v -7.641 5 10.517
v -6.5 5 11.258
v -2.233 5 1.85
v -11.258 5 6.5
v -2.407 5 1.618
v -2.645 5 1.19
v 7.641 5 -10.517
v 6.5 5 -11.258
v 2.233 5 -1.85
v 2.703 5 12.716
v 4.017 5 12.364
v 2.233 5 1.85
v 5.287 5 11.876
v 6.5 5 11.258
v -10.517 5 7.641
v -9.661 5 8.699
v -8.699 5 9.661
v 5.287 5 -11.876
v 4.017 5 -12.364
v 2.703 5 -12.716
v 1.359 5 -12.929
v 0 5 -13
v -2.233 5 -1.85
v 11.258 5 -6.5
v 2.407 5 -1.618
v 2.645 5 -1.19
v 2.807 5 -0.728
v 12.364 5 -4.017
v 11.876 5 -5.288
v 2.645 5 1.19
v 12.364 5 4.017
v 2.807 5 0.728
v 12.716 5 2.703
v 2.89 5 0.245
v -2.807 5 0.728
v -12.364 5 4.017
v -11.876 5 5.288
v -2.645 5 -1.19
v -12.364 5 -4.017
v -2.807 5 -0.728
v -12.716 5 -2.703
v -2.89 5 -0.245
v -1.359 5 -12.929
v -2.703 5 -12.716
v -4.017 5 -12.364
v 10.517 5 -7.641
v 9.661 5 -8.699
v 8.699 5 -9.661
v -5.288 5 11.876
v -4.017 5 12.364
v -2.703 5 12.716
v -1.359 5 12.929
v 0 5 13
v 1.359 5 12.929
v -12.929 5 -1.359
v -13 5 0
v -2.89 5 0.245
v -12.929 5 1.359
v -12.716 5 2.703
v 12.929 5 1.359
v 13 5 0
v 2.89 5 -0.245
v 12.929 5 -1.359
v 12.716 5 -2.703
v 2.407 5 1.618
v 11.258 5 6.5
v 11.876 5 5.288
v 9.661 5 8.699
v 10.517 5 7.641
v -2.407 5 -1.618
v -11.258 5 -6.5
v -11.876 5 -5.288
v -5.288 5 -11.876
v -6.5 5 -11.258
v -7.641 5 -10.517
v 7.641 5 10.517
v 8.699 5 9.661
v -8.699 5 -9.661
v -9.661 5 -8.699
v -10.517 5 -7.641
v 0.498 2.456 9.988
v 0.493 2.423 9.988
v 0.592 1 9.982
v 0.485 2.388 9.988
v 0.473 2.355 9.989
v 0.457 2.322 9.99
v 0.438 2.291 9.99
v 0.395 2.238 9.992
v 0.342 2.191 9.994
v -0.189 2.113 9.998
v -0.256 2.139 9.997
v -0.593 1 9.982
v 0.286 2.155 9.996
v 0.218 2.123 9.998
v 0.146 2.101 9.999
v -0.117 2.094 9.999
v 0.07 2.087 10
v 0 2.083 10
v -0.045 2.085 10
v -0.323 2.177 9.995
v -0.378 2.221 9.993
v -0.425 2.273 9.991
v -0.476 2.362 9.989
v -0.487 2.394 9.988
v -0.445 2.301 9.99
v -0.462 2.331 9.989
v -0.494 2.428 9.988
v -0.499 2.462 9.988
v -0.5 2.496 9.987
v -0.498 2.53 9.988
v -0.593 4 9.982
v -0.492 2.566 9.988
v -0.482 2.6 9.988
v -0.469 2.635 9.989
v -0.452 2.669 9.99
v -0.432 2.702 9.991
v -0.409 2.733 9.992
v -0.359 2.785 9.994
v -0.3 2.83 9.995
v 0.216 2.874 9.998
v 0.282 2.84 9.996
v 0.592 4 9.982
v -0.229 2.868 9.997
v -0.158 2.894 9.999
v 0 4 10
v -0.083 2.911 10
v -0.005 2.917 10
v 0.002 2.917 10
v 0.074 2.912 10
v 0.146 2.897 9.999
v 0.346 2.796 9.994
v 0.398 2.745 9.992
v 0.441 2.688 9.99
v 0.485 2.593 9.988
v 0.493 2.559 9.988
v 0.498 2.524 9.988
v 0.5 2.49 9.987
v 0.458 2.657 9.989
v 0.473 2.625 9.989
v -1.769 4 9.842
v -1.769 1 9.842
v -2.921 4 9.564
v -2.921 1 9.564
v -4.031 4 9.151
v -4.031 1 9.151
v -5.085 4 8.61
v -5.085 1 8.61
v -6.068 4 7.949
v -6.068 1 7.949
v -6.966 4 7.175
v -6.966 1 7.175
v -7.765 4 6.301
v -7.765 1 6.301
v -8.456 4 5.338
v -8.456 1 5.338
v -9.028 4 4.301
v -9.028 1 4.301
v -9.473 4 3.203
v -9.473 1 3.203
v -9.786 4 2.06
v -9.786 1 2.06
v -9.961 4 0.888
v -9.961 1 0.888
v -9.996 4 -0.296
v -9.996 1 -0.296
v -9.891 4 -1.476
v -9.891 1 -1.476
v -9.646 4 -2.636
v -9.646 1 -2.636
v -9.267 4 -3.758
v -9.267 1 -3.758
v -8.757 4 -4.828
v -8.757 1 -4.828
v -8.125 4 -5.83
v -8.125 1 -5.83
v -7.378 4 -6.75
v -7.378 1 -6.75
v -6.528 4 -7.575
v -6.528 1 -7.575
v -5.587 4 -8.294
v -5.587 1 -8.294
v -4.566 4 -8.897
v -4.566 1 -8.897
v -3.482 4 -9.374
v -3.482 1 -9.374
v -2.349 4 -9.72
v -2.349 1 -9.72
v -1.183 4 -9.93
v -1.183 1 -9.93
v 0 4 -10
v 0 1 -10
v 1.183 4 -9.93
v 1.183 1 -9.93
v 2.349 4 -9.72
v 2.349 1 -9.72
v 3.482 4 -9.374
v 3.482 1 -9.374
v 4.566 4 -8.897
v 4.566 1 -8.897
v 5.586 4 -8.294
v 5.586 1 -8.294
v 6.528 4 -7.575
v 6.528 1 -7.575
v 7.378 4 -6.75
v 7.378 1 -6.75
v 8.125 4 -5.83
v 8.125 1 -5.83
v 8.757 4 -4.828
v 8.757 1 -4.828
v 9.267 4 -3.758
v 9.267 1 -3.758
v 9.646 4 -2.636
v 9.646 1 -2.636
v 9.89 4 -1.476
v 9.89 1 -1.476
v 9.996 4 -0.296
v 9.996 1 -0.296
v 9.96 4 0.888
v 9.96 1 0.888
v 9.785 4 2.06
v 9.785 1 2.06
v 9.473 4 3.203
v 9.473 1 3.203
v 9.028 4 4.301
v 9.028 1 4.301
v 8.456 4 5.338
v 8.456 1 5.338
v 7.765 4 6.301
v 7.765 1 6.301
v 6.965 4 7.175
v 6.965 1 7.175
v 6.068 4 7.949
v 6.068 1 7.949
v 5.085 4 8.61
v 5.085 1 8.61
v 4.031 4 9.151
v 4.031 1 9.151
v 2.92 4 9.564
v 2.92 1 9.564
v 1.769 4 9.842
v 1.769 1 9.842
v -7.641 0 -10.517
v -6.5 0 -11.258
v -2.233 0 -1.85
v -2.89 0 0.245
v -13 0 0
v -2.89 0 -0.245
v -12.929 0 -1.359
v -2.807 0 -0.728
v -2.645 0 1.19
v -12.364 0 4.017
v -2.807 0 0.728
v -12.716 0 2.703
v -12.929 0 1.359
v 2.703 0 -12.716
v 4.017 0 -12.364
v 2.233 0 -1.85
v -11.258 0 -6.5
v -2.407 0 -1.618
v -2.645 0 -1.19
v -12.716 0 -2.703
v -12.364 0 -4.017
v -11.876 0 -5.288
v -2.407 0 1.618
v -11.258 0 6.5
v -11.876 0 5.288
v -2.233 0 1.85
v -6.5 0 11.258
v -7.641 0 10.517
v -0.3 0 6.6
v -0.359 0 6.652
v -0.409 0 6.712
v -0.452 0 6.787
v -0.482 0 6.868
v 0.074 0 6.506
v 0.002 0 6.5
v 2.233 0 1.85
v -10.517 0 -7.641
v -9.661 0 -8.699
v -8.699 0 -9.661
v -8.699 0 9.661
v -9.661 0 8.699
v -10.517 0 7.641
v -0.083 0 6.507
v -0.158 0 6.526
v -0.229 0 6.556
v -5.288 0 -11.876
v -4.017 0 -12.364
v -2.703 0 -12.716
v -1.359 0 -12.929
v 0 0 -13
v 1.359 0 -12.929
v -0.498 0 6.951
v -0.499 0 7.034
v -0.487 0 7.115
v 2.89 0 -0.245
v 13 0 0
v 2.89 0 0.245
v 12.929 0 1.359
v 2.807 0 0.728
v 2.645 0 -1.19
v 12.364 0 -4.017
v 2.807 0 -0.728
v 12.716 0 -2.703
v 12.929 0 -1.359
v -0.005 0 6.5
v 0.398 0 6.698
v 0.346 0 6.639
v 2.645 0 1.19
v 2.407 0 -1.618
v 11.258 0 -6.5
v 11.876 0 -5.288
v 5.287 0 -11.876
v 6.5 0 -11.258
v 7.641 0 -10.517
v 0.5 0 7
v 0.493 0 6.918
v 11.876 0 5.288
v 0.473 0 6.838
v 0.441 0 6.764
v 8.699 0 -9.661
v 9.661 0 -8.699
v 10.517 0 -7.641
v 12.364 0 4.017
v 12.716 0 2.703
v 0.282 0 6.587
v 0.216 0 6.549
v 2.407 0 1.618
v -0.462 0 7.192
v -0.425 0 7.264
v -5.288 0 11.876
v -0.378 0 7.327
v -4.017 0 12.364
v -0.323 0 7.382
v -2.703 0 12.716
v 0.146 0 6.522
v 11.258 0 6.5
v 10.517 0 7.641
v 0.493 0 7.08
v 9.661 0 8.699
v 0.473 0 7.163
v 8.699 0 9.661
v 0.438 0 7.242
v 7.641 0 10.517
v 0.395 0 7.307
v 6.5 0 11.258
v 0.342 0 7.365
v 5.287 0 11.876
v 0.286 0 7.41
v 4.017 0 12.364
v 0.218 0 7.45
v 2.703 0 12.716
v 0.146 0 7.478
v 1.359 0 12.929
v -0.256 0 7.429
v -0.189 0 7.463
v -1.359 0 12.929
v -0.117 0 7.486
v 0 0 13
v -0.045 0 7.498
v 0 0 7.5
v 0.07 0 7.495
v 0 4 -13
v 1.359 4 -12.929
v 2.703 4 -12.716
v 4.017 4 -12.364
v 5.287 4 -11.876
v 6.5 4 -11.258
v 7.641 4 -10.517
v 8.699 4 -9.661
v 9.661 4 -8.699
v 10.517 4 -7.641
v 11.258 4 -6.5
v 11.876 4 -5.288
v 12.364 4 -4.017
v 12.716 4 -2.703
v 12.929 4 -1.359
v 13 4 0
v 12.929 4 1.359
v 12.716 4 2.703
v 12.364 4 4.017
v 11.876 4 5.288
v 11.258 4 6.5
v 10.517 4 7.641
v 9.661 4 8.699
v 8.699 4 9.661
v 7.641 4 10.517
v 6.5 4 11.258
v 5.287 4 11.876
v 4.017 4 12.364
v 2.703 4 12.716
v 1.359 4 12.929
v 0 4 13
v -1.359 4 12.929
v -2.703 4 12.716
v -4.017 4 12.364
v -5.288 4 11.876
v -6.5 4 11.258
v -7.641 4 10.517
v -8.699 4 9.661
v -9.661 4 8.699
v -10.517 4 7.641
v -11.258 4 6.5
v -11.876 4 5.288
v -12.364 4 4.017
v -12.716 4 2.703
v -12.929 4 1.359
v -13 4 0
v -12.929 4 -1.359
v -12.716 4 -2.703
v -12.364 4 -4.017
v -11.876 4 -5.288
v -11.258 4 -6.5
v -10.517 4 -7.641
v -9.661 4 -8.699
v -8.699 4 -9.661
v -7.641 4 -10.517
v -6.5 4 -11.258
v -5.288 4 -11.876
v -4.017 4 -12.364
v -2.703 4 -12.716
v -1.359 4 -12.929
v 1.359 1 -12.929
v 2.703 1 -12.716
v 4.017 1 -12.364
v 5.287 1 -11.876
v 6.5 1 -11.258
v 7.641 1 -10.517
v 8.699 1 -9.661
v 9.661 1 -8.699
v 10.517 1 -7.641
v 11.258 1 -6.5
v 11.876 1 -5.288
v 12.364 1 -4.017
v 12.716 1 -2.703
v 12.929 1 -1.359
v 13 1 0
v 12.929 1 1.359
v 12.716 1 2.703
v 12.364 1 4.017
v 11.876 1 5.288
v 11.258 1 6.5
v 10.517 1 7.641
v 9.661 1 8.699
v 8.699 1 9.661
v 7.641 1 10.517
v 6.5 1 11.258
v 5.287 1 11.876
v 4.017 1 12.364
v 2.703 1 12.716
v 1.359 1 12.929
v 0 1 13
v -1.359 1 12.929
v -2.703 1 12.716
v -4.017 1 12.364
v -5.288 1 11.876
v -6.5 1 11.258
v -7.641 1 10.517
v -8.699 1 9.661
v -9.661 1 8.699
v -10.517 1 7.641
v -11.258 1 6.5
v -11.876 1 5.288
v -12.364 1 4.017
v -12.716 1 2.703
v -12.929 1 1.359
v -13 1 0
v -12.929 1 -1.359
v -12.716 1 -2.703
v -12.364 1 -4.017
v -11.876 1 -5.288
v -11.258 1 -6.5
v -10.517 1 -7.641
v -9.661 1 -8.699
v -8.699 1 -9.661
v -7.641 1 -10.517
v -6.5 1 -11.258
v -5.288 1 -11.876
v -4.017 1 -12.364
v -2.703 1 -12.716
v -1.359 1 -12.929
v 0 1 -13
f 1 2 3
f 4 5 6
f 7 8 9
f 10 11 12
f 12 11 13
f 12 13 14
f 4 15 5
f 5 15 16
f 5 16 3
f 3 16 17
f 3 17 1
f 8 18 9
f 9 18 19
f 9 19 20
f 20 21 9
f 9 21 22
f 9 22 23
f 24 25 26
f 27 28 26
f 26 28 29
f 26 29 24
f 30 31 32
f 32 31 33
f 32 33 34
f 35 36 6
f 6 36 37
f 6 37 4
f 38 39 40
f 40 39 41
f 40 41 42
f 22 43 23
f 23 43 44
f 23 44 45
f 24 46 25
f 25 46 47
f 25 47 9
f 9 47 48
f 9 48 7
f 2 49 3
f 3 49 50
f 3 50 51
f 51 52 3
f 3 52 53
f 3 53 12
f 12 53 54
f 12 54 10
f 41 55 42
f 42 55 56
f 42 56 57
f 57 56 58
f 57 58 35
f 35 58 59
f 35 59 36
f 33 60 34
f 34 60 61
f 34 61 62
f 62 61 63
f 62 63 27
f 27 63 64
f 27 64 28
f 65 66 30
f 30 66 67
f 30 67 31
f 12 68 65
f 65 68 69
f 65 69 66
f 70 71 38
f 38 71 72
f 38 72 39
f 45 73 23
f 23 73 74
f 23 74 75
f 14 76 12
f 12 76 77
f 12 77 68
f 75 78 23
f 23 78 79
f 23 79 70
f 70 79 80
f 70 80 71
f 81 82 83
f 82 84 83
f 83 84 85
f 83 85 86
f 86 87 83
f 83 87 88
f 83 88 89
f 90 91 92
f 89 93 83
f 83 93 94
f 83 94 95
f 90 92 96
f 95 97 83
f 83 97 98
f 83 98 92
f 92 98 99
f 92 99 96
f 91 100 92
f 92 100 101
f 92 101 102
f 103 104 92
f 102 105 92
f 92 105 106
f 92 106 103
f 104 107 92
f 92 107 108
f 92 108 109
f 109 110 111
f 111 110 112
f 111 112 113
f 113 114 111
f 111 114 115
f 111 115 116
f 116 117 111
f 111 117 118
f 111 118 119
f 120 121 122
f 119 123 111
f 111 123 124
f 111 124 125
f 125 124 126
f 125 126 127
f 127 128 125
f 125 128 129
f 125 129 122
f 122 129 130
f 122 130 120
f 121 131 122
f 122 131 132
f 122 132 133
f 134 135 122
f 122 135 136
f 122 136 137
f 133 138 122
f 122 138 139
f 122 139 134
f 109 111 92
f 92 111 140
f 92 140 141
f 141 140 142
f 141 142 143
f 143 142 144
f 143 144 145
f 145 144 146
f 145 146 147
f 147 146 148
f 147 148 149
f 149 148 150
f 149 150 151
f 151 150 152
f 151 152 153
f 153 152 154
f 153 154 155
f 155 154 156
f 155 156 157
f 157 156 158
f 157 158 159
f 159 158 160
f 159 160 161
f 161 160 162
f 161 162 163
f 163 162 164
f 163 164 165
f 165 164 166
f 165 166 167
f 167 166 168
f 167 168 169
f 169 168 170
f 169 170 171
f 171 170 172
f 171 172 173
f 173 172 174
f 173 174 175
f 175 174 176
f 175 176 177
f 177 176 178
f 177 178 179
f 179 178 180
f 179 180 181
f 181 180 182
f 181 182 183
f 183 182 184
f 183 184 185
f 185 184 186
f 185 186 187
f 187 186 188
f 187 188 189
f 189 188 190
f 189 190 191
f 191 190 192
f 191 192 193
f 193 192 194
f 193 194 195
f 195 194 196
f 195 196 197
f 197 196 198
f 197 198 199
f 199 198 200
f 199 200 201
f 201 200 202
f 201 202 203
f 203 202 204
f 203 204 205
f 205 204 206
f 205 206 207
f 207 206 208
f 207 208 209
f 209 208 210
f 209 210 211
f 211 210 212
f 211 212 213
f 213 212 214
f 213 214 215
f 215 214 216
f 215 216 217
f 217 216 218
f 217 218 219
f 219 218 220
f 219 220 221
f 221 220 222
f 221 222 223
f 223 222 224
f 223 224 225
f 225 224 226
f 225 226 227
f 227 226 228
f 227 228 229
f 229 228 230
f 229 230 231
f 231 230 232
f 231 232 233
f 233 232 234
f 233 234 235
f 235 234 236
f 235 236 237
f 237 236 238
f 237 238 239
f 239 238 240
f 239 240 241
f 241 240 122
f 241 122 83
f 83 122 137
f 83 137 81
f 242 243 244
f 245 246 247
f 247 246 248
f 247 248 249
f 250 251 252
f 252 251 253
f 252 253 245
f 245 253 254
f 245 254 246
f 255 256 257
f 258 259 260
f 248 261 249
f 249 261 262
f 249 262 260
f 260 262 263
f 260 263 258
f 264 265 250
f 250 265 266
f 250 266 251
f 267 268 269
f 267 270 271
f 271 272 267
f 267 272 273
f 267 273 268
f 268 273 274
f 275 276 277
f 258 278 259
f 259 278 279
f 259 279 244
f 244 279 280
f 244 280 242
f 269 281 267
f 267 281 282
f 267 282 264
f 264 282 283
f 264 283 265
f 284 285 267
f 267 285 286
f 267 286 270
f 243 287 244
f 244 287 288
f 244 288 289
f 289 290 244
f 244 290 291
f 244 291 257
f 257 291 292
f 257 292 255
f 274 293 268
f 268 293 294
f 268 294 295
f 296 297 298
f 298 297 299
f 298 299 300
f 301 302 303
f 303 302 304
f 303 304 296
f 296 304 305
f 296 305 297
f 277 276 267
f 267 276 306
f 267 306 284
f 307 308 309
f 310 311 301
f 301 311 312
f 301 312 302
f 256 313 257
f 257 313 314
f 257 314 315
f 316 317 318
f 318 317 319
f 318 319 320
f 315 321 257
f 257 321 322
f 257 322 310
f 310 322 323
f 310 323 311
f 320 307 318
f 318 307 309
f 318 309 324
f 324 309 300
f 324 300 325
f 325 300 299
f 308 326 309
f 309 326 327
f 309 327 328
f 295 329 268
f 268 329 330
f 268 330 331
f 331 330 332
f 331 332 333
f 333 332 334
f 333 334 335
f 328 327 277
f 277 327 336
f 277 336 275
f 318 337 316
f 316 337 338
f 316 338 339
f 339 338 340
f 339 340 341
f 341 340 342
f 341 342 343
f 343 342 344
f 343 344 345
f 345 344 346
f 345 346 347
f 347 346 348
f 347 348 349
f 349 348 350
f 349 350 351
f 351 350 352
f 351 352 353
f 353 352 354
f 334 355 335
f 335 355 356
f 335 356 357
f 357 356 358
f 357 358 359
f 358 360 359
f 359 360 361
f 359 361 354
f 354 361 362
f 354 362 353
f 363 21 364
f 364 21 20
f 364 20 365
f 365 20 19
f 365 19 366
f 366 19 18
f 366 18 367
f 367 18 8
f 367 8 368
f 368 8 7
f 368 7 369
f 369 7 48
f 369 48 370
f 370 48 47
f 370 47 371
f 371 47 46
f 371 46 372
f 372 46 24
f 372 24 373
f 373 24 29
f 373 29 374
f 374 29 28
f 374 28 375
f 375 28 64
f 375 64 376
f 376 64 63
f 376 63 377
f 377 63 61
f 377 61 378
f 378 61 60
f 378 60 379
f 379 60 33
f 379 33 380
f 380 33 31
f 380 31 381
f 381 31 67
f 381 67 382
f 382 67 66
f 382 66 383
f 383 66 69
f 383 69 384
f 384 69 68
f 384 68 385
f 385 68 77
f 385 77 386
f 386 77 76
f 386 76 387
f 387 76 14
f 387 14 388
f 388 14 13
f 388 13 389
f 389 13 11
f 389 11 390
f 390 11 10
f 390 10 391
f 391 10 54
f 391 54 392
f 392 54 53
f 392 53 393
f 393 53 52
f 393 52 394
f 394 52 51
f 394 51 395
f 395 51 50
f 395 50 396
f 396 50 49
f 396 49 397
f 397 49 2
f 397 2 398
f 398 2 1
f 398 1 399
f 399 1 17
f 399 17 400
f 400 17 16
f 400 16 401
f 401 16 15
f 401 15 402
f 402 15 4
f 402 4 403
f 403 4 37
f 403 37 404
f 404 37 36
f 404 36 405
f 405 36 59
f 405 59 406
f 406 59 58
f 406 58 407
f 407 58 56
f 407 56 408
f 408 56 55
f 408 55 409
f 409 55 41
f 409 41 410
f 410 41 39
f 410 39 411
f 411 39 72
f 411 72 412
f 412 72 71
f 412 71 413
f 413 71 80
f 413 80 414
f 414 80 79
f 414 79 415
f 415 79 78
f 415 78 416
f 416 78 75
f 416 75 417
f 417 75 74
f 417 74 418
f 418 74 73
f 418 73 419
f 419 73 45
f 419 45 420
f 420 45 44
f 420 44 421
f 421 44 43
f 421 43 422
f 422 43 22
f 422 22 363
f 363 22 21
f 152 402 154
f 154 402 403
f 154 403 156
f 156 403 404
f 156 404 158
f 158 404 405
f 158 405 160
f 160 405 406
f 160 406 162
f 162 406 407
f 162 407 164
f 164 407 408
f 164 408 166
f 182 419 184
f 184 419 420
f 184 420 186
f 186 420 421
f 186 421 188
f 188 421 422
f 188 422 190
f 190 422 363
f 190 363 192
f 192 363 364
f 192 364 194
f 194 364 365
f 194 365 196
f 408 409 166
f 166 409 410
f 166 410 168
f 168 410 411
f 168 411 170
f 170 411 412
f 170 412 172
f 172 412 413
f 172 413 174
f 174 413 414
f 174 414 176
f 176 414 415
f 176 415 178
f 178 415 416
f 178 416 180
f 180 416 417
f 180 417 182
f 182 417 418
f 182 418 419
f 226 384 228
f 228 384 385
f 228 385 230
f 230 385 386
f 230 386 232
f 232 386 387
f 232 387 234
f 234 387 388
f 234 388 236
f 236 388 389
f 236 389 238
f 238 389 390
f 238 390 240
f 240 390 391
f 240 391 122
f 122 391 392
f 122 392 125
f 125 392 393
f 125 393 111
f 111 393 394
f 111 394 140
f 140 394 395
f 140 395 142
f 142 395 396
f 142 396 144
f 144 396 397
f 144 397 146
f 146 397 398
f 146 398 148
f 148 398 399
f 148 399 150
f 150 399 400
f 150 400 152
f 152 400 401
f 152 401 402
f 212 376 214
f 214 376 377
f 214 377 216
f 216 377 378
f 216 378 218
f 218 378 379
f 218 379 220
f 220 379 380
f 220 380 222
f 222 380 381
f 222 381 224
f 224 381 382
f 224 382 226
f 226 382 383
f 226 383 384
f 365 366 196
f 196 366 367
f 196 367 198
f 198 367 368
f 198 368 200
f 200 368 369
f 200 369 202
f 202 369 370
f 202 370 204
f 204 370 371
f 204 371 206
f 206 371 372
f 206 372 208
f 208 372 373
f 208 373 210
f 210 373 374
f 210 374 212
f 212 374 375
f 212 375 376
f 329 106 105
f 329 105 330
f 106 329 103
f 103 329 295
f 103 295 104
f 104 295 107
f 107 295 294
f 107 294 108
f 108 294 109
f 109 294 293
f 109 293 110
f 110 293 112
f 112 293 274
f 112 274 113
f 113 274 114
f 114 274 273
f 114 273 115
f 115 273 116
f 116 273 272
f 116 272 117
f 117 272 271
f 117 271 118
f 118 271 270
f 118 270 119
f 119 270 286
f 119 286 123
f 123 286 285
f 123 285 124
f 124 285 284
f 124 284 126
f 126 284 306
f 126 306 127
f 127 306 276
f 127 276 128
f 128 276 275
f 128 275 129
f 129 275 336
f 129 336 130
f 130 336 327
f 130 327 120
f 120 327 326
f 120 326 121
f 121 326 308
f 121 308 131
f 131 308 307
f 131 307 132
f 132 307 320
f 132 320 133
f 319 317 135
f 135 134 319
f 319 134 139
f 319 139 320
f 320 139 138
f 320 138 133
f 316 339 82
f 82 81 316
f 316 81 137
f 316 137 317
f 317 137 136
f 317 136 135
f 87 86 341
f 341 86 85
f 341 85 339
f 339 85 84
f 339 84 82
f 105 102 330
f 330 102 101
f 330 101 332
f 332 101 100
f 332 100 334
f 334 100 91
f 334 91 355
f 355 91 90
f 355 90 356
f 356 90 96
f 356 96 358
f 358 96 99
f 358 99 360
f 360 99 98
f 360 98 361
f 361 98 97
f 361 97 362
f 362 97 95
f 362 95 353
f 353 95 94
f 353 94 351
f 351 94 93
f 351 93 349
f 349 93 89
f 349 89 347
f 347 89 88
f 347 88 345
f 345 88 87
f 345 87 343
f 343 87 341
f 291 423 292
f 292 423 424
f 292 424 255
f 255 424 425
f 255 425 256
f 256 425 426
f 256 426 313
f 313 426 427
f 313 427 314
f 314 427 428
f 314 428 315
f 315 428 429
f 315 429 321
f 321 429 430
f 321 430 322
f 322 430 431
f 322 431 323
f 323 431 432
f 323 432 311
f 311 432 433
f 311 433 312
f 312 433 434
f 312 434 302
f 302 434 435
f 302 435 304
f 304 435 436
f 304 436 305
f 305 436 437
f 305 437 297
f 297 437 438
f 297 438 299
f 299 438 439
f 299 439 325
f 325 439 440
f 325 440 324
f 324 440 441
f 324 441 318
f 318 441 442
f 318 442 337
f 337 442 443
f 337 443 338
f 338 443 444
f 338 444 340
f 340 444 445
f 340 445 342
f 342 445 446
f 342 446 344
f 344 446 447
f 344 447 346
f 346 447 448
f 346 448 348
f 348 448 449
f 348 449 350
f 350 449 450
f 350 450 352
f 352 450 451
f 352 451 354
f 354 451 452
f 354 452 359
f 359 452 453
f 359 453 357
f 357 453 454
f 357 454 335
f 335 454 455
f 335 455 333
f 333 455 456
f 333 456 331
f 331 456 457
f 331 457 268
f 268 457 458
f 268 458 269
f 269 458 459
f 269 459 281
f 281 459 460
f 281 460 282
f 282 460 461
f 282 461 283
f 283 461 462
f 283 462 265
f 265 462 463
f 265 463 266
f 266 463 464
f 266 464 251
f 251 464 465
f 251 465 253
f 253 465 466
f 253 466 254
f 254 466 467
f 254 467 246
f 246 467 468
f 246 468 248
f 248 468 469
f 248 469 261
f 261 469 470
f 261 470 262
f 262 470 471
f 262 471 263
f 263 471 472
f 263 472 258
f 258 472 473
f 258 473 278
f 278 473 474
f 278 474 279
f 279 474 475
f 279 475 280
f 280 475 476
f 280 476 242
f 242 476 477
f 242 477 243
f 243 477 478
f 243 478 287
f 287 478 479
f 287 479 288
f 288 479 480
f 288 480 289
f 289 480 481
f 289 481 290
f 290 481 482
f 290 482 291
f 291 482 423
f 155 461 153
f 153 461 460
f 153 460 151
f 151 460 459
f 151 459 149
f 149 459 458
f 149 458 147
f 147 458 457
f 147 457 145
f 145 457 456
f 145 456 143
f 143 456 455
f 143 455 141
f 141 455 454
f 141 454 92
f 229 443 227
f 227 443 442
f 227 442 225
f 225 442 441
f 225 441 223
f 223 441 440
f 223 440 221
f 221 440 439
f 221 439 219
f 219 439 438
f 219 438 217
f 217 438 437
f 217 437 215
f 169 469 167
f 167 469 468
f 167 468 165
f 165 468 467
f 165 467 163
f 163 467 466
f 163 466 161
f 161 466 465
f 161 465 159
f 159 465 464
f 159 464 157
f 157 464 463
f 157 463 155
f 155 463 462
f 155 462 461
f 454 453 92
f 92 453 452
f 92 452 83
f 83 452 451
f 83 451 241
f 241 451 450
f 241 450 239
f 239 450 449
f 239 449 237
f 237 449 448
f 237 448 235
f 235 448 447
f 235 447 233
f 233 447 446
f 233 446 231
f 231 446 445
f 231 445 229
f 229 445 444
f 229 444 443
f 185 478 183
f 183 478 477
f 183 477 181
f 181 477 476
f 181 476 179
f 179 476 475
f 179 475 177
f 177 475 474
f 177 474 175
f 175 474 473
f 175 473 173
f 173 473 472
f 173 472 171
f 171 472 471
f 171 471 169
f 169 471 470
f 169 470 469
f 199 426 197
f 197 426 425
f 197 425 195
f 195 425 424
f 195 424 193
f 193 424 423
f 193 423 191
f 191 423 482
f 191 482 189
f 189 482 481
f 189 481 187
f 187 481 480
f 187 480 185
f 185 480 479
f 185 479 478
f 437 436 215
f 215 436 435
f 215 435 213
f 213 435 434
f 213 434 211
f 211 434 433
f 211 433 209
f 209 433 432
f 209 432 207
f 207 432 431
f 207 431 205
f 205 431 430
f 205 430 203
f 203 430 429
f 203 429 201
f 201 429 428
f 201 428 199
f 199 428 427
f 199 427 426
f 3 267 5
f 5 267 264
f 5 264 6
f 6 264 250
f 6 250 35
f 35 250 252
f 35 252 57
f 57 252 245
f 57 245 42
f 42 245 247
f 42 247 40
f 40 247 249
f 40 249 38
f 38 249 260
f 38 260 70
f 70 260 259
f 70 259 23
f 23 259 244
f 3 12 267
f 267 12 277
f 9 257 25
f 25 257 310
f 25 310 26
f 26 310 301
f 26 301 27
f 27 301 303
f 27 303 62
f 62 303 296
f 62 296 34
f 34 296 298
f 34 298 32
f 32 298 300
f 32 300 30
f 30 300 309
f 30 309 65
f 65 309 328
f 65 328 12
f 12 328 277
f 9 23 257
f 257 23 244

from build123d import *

# Parameters (mm, degrees)
SKETCH1_R               = 10
BOSS_EXTRUDE1_DEPTH     = 1
SKETCH2_R               = 10
BOSS_EXTRUDE2_DEPTH     = 4
SKETCH4_R               = 13
BOSS_EXTRUDE3_DEPTH     = 1
CUT_SWEEP1_START        = 4.993438222
CUT_SWEEP1_DEPTH        = 4.55597903
SKETCH9_R               = 1
CUT_EXTRUDE2_DEPTH      = 5
SKETCH10_R              = 2.5
SKETCH10_R_2            = 1
BOSS_EXTRUDE4_DEPTH     = 1
SKETCH11_R              = 13
SKETCH11_R_2            = 10
BOSS_EXTRUDE5_DEPTH     = 1
CUT_EXTRUDE4_DEPTH      = 20.05255902
CUT_EXTRUDE4_DEPTH_BACK = 20.05255902


# Read off the part's stored shape, not the designer's step: Cut-Sweep1
with BuildPart() as part:
    # Sketch1 → Boss-Extrude1 (new body)
    with BuildSketch(Plane(origin=(0, 0, 0), x_dir=(1, 0, 0), z_dir=(0, 1, 0))):
        with Locations(Location((0, 0, 0), (0, 0, 270))):
            Circle(SKETCH1_R)
    extrude(amount=BOSS_EXTRUDE1_DEPTH)

    # Sketch2 → Boss-Extrude2 (add)
    with BuildSketch(Plane(origin=(0, 0, 0), x_dir=(1, 0, 0), z_dir=(0, 1, 0))):
        with Locations(Location((0, 0, 0), (0, 0, 270))):
            Circle(SKETCH2_R)
    extrude(amount=BOSS_EXTRUDE2_DEPTH)

    # Sketch4 → Boss-Extrude3 (add)
    with BuildSketch(Plane(origin=(0, 4, 0), x_dir=(1, 0, 0), z_dir=(0, 1, 0))):
        with Locations(Location((0, 0, 0), (0, 0, 270))):
            Circle(SKETCH4_R)
    extrude(amount=BOSS_EXTRUDE3_DEPTH)

    # Cut-Sweep1 outline → Cut-Sweep1 (cut)
    with BuildSketch(Plane(origin=(0, 0, 0), x_dir=(1, 0, 0), z_dir=(0, 0.6401843996644766, 0.7682212795973786)).offset(CUT_SWEEP1_START)):
        with BuildLine():
            add(Edge.make_bspline(
                [(0, -4.801382997), (1, -4.801382997), (1, -4.161198598), (0, -4.161198598), (-1, -4.161198598), (-1, -4.801382997), (0, -4.801382997)],
                knots=[0, 0, 0, 0, 0.5, 0.5, 0.5, 1, 1, 1, 1], degree=3, weights=[1, 0.333333333, 0.333333333, 1, 0.333333333, 0.333333333, 1]))
        make_face()
    extrude(amount=CUT_SWEEP1_DEPTH, mode=Mode.SUBTRACT)

    # Sketch9 → Cut-Extrude2 (cut)
    with BuildSketch(Plane(origin=(0, 0, 0), x_dir=(1, 0, 0), z_dir=(0, 1, 0))):
        with Locations(Location((0, 0, 0), (0, 0, 270))):
            Circle(SKETCH9_R)
    extrude(amount=CUT_EXTRUDE2_DEPTH, mode=Mode.SUBTRACT)

    # Sketch10 → Boss-Extrude4 (add)
    with BuildSketch(Plane(origin=(0, 0, 0), x_dir=(1, 0, 0), z_dir=(0, 1, 0))):
        Circle(SKETCH10_R)
        with Locations(Location((0, 0, 0), (0, 0, 270))):
            Circle(SKETCH10_R_2, mode=Mode.SUBTRACT)
    extrude(amount=BOSS_EXTRUDE4_DEPTH)

    # Sketch11 → Boss-Extrude5 (add)
    with BuildSketch(Plane(origin=(0, 0, 0), x_dir=(-1, 0, 0), z_dir=(0, -1, 0))):
        with Locations(Location((0, 0, 0), (0, 0, 270))):
            Circle(SKETCH11_R)
        with Locations(Location((0, 0, 0), (0, 0, 90))):
            Circle(SKETCH11_R_2, mode=Mode.SUBTRACT)
    extrude(amount=-BOSS_EXTRUDE5_DEPTH)

    # Sketch12 → Cut-Extrude4 (cut, two sides: drawn at the far end of the back side and taken through both)
    with BuildSketch(Plane(origin=(0, 0, 0), x_dir=(1, 0, 0), z_dir=(0, 1, 0)).offset(-CUT_EXTRUDE4_DEPTH_BACK)):
        with BuildLine():
            Line((-2.233271143, 1.85), (2.233271143, 1.85))
            ThreePointArc((2.233271143, 1.85), (2.9, 0), (2.233271143, -1.85))
            Line((2.233271143, -1.85), (-2.233271143, -1.85))
            ThreePointArc((-2.233271143, -1.85), (-2.9, 0), (-2.233271143, 1.85))
        make_face()
    extrude(amount=CUT_EXTRUDE4_DEPTH + CUT_EXTRUDE4_DEPTH_BACK, mode=Mode.SUBTRACT)


solid = part.part
